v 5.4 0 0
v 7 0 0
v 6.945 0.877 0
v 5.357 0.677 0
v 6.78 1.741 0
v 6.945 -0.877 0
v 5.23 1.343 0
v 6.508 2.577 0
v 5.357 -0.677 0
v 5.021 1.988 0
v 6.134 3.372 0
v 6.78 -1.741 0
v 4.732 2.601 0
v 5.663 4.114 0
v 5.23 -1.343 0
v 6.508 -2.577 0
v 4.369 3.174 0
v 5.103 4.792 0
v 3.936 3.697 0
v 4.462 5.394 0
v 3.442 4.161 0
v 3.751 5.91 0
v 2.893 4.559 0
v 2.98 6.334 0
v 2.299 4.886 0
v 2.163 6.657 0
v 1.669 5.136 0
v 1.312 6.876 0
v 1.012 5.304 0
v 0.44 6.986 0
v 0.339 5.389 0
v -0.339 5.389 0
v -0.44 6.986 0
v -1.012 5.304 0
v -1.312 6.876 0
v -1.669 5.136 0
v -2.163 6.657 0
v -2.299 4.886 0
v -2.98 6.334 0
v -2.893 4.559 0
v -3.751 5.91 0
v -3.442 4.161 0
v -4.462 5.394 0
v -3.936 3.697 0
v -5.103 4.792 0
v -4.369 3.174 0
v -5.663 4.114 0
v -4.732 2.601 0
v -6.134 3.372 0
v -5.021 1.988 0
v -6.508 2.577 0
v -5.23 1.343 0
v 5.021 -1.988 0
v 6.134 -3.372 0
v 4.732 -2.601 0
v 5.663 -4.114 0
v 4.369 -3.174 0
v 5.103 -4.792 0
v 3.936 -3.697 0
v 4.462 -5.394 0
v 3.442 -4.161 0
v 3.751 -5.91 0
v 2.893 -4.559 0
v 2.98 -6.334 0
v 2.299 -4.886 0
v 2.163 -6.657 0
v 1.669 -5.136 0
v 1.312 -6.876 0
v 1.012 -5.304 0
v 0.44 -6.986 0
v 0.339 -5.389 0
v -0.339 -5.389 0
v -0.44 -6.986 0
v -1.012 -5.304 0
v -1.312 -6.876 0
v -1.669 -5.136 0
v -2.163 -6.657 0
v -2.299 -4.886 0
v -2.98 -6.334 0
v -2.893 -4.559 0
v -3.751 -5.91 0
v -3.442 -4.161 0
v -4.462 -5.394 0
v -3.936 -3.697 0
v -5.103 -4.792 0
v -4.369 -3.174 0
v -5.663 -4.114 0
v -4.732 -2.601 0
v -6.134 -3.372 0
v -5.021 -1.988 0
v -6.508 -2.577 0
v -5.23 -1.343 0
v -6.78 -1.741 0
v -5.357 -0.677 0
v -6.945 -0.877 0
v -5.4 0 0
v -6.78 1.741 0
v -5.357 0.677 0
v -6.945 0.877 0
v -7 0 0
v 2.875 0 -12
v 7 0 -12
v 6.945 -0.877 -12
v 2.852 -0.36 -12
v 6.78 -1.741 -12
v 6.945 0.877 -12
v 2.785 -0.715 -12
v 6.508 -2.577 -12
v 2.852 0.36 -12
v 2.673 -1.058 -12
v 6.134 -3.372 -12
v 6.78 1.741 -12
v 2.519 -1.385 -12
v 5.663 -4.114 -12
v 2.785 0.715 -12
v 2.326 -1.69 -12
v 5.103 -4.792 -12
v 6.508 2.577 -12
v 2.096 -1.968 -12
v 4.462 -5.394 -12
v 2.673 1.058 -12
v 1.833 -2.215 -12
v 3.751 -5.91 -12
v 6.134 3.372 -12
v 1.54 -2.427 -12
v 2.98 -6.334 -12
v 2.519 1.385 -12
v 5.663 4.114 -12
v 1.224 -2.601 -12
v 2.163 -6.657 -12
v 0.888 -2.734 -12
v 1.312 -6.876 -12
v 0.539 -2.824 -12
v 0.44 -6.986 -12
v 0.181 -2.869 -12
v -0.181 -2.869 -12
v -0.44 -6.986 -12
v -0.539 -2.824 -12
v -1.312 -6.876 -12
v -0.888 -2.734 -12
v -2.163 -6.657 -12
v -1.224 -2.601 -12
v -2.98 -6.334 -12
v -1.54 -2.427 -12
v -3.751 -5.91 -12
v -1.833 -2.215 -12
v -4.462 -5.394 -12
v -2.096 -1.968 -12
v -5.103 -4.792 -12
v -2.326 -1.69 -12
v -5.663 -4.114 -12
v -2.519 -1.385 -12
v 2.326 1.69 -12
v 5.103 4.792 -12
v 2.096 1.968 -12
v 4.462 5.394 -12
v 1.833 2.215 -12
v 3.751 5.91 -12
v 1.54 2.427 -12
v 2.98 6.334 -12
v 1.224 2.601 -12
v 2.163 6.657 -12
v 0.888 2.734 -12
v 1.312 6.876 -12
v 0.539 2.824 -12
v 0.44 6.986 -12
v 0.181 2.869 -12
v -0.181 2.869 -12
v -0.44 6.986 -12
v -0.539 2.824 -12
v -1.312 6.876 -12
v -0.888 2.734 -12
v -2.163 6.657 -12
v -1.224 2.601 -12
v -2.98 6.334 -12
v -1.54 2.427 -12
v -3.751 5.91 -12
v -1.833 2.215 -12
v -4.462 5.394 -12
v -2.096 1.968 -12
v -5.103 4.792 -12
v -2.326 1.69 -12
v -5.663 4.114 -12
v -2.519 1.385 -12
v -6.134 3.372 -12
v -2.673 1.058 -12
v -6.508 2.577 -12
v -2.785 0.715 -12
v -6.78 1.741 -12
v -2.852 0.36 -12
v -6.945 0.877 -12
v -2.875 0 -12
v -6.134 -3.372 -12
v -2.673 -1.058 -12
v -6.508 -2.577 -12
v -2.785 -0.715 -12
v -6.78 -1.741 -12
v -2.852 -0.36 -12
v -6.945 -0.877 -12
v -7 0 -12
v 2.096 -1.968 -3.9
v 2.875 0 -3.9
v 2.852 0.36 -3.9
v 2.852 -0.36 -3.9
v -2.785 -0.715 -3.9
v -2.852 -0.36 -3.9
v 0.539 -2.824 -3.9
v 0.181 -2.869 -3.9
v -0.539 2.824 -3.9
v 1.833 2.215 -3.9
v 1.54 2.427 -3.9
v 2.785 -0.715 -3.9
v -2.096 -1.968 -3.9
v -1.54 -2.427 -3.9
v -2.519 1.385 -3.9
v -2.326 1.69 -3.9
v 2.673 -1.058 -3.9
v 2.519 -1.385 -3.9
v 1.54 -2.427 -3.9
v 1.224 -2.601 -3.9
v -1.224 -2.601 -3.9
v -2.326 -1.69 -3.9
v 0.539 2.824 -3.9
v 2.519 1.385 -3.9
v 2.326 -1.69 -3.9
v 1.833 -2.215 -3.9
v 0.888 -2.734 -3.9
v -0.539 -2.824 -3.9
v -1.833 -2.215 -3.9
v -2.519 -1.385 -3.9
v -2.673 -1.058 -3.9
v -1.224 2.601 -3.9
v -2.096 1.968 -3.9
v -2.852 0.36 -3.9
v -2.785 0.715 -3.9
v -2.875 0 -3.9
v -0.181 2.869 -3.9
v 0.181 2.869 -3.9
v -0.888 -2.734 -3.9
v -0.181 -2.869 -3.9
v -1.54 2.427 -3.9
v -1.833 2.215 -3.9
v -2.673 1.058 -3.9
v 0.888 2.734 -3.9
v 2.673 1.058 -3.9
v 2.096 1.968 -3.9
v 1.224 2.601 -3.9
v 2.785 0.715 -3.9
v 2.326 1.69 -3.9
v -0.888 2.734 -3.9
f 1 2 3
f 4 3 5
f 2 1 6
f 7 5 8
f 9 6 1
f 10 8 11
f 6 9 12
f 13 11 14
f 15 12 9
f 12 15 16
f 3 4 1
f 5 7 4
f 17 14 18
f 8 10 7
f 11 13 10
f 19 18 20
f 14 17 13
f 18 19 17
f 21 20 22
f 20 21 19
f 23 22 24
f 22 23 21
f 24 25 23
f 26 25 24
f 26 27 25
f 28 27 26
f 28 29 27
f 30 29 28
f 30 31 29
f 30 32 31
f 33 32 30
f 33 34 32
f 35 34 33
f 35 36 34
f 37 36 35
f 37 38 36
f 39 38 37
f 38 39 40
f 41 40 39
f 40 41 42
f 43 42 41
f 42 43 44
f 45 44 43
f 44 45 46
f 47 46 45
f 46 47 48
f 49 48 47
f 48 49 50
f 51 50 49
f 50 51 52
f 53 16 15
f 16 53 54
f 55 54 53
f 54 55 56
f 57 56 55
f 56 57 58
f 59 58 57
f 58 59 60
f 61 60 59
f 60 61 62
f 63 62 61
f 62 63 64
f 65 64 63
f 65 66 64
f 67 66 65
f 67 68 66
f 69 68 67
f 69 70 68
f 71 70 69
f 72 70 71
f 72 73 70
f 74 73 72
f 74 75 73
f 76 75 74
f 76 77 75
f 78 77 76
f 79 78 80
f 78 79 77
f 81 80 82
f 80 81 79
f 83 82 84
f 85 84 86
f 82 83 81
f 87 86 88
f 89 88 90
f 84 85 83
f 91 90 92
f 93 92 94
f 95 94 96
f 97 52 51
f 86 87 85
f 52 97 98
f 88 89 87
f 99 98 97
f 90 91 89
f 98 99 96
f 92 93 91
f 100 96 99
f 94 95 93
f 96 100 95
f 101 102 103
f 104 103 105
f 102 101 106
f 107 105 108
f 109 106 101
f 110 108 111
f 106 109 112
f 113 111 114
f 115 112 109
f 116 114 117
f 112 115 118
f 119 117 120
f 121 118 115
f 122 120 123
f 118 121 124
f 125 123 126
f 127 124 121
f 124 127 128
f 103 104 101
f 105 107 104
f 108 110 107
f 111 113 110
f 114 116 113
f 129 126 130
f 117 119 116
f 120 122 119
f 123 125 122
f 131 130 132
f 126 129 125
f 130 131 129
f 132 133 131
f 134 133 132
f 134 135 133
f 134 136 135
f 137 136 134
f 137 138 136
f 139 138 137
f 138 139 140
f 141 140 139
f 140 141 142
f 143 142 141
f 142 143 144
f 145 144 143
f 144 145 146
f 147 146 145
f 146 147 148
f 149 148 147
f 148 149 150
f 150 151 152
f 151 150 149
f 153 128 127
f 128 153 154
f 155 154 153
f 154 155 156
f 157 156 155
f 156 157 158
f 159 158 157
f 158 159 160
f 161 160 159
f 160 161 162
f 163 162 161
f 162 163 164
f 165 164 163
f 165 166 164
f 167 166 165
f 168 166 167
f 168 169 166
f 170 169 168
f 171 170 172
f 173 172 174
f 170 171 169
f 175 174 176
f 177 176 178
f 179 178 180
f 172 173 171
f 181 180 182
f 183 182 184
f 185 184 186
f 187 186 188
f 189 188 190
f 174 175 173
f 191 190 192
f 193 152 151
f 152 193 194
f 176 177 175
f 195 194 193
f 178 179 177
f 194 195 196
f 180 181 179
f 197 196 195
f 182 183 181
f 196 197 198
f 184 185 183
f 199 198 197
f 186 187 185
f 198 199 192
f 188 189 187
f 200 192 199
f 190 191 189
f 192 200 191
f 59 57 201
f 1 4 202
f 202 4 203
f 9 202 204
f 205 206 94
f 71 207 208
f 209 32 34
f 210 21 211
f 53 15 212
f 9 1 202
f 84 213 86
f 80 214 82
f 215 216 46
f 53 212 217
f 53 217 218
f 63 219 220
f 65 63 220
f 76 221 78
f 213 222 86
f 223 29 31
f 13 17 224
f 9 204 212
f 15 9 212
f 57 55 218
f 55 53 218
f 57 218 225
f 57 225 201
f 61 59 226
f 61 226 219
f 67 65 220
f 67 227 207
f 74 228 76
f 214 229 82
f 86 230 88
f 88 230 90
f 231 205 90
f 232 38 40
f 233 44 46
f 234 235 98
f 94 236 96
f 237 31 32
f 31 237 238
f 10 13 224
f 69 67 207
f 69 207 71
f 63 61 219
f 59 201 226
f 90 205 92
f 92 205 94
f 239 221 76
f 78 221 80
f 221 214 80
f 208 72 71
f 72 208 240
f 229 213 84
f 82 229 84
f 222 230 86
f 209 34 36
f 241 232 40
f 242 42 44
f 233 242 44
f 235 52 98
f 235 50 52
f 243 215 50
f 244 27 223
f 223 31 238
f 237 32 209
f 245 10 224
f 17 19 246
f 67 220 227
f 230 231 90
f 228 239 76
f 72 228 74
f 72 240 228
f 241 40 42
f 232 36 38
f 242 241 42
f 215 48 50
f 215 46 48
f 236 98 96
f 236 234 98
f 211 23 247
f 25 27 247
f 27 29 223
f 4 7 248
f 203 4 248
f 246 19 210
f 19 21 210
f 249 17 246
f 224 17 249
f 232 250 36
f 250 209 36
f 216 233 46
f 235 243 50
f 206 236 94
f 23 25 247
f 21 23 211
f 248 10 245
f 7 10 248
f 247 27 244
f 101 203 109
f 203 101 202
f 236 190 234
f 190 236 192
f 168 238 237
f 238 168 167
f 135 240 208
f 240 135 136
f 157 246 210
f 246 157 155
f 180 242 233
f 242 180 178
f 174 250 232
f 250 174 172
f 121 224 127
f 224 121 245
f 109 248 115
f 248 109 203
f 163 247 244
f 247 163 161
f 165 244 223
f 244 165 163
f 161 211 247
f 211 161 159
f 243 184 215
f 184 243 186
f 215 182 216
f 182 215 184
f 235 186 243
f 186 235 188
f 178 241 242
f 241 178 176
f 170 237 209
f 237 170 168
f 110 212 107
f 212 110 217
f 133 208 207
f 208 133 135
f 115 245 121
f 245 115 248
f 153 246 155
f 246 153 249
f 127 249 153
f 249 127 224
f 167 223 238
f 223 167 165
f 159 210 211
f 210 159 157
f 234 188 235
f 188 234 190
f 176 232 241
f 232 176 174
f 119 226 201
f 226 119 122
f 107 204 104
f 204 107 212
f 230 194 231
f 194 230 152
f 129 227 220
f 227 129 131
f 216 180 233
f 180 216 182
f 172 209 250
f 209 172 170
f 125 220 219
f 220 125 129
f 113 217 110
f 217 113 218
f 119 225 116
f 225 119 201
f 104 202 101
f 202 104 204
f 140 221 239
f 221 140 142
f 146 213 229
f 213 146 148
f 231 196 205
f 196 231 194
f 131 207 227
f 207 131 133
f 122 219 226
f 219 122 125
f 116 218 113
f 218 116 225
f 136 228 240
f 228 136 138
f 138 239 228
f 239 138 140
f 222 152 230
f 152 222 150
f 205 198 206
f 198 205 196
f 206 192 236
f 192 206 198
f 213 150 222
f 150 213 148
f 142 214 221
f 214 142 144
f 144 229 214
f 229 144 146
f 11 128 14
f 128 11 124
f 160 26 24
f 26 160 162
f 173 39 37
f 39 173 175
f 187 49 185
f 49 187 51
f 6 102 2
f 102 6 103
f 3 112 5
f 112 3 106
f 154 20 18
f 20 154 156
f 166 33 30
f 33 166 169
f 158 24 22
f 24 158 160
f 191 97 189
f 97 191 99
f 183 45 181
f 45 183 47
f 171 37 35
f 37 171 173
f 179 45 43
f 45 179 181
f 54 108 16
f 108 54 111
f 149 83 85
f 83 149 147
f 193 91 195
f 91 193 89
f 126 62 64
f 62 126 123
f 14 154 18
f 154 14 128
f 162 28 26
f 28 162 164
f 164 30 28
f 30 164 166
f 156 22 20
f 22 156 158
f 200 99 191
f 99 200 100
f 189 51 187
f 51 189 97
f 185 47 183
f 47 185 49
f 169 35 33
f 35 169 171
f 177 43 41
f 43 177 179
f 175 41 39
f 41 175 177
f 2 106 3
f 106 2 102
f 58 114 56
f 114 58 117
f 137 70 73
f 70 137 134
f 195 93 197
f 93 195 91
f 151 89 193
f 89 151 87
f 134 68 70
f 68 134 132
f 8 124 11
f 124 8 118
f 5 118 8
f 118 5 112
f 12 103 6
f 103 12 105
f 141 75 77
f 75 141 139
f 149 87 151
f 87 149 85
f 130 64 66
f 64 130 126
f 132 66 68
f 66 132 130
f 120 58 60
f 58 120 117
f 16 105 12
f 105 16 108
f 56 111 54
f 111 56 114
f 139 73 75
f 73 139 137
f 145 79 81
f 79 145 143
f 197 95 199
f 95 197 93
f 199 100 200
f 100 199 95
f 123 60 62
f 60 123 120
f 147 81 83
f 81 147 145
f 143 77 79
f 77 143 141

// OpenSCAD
$fn = 50;


difference() {
	union() {
		translate(v = [0, 0, -12.0000000000]) {
			cylinder(h = 12, r = 7.0000000000);
		}
		cylinder(h = 0, r = 17.0000000000);
	}
	union() {
		translate(v = [0, 0, 0]) {
			rotate(a = [0, 0, 0]) {
				difference() {
					union() {
						#translate(v = [0, 0, -12.0000000000]) {
							cylinder(h = 12, r = 2.6000000000);
						}
						#translate(v = [0, 0, -3.9000000000]) {
							cylinder(h = 3.9000000000, r = 7.0000000000, r1 = 2.8750000000, r2 = 5.4000000000);
						}
						#translate(v = [0, 0, -12.0000000000]) {
							cylinder(h = 12, r = 2.8750000000);
						}
						#translate(v = [0, 0, -12.0000000000]) {
							cylinder(h = 12, r = 2.6000000000);
						}
					}
					union();
				}
			}
		}
	}
}
